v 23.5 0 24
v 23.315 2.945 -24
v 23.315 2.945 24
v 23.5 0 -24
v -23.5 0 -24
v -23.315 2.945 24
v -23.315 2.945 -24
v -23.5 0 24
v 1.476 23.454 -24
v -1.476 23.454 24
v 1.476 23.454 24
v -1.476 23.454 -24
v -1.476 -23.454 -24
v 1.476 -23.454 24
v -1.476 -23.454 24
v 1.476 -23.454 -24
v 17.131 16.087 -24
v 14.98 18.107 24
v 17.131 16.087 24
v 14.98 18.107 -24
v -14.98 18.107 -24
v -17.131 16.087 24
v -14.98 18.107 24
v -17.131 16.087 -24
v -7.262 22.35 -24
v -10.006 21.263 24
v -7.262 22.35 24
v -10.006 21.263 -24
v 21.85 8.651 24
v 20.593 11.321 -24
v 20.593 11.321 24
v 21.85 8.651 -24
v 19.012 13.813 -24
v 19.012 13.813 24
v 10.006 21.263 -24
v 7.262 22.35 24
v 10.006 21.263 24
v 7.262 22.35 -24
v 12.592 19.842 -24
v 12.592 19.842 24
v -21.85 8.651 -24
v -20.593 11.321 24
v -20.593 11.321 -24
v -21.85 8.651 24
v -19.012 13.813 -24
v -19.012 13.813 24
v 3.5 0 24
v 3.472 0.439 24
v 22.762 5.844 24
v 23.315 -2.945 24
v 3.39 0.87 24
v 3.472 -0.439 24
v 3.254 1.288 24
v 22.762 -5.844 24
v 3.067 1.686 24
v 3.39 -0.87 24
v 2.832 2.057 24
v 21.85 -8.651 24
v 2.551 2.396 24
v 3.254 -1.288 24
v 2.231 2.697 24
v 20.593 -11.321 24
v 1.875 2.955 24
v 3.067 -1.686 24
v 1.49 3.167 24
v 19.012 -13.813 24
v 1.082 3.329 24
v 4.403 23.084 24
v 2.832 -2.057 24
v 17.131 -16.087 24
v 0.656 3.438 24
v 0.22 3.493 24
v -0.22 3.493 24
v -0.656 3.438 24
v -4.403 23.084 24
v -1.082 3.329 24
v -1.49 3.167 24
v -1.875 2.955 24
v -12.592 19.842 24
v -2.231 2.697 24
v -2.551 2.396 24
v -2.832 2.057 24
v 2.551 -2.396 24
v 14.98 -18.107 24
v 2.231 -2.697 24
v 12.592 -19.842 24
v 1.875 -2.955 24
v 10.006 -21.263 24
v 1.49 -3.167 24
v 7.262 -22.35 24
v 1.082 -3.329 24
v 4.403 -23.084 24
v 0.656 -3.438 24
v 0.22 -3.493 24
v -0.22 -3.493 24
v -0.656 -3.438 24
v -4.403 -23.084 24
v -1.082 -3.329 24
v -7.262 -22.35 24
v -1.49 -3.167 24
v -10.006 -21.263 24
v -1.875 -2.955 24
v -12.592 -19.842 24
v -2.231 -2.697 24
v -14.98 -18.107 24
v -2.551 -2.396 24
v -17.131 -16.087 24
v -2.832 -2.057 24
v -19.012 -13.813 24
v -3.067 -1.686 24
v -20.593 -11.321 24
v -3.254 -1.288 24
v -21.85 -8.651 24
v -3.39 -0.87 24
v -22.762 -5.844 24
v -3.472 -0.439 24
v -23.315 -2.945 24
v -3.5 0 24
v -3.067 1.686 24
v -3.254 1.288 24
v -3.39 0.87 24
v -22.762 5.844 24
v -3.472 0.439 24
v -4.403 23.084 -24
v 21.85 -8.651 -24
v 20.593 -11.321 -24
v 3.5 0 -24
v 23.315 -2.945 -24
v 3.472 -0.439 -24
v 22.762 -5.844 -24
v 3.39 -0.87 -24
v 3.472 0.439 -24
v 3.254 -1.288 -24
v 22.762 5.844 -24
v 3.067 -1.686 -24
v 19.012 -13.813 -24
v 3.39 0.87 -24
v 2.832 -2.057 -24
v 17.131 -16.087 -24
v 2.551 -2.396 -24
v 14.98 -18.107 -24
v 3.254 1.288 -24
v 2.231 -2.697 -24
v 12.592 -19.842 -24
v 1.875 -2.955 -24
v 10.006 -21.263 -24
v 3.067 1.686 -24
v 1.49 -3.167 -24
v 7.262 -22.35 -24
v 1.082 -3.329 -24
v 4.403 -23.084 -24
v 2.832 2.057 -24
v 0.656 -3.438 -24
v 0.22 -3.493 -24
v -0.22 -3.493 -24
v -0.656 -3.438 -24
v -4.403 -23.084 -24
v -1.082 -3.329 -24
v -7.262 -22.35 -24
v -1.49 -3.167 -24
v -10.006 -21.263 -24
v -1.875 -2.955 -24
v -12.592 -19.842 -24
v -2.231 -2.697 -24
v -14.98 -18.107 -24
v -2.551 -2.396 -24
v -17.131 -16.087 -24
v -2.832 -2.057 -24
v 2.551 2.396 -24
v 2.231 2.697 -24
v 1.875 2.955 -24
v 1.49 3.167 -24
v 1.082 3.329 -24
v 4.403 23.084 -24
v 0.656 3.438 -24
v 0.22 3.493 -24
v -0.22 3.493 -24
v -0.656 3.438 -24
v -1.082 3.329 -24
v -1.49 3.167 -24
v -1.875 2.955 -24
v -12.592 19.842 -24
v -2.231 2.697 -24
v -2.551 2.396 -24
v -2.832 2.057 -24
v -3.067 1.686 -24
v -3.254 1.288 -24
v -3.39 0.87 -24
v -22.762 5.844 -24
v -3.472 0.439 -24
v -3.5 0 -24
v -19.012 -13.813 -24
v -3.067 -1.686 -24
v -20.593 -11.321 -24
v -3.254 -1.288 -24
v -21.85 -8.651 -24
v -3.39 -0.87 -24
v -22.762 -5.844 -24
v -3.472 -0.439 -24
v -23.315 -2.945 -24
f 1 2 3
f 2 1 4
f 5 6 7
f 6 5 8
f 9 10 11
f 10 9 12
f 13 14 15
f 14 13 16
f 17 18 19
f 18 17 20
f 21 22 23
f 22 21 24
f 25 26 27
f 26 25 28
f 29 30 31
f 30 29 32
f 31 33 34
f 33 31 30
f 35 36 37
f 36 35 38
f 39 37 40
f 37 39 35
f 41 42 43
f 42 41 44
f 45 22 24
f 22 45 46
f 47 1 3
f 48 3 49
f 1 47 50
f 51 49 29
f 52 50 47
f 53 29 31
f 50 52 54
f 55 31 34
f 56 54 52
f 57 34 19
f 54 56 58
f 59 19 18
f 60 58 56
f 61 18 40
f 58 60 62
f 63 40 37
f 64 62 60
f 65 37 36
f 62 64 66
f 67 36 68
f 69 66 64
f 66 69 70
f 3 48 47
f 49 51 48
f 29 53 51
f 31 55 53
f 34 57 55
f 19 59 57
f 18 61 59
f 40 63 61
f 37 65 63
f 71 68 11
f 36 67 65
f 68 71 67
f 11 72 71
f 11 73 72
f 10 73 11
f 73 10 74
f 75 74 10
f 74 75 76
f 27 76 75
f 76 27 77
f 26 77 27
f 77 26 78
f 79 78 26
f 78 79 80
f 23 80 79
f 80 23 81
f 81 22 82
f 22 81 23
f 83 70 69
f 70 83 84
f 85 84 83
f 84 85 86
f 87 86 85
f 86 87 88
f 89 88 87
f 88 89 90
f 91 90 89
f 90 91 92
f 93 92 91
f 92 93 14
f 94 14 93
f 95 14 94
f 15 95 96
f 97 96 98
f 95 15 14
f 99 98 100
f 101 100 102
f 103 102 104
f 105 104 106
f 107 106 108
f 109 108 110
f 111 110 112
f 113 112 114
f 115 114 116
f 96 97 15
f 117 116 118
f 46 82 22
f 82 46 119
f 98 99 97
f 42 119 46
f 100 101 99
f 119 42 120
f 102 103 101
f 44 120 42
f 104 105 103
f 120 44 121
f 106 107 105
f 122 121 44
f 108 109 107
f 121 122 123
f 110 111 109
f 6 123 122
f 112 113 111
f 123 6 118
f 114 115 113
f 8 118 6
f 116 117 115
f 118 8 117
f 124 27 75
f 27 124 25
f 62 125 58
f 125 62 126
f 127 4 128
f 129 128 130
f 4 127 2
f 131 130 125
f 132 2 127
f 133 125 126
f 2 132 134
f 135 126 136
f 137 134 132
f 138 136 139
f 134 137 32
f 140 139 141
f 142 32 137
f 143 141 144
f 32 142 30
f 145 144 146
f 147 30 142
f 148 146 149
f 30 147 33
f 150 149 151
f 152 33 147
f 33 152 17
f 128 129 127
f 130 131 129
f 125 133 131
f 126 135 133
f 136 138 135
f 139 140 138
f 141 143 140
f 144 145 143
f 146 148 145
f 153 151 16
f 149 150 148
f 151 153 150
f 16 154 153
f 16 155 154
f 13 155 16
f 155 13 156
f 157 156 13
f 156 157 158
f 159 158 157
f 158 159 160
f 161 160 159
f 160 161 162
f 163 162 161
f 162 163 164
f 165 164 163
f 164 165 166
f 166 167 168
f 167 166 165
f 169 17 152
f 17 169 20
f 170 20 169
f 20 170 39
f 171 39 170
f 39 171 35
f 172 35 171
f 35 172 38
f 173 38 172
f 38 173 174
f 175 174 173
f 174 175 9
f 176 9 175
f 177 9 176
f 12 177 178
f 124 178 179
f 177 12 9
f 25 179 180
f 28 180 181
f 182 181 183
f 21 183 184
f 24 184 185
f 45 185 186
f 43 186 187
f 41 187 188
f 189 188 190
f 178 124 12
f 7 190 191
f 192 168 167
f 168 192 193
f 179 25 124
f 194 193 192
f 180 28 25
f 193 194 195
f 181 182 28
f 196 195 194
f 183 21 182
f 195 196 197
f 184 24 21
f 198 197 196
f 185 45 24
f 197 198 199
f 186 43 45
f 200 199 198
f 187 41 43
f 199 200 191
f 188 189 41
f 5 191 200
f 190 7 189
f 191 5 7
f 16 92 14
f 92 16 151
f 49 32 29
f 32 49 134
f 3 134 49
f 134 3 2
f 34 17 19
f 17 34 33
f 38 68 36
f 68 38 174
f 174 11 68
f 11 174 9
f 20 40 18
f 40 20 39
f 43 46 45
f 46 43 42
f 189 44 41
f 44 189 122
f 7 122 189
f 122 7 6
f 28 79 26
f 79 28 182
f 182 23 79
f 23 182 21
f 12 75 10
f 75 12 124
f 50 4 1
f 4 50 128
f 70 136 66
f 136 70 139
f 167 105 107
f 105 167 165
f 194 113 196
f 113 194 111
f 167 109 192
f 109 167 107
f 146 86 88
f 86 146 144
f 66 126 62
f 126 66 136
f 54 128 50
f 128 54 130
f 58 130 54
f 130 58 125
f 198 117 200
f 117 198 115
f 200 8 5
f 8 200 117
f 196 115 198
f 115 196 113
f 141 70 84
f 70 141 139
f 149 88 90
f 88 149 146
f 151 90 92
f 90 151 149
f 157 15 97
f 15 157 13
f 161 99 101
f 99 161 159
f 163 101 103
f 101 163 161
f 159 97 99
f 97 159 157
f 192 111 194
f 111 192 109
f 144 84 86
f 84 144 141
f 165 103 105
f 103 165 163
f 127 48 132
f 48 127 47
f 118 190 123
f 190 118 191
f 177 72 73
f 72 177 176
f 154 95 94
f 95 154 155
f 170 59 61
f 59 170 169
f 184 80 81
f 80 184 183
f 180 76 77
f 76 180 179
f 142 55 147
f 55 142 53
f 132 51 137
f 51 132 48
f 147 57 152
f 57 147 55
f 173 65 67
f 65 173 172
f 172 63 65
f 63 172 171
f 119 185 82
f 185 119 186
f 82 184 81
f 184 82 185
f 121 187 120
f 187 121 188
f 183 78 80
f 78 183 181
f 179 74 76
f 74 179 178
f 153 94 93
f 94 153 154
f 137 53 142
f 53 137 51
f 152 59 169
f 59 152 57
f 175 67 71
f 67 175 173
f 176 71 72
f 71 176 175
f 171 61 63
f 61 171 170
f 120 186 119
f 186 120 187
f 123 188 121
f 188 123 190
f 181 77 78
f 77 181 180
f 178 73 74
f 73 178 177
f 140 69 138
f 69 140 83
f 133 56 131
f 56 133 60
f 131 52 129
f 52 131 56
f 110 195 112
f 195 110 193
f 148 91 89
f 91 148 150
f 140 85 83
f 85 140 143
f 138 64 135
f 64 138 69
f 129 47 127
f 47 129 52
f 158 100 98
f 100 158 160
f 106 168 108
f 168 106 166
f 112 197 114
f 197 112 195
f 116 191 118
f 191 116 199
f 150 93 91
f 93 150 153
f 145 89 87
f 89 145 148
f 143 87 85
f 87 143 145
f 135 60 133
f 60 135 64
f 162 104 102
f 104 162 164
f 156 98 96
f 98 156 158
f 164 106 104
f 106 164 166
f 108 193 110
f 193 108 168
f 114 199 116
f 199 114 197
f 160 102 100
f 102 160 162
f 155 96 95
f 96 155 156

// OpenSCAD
$fn = 50;


difference() {
	union() {
		translate(v = [0, 0, -24.0000000000]) {
			cylinder(h = 48, r = 23.5000000000);
		}
	}
	union() {
		translate(v = [0, 0, -100.0000000000]) {
			cylinder(h = 200, r = 3.5000000000);
		}
	}
}
